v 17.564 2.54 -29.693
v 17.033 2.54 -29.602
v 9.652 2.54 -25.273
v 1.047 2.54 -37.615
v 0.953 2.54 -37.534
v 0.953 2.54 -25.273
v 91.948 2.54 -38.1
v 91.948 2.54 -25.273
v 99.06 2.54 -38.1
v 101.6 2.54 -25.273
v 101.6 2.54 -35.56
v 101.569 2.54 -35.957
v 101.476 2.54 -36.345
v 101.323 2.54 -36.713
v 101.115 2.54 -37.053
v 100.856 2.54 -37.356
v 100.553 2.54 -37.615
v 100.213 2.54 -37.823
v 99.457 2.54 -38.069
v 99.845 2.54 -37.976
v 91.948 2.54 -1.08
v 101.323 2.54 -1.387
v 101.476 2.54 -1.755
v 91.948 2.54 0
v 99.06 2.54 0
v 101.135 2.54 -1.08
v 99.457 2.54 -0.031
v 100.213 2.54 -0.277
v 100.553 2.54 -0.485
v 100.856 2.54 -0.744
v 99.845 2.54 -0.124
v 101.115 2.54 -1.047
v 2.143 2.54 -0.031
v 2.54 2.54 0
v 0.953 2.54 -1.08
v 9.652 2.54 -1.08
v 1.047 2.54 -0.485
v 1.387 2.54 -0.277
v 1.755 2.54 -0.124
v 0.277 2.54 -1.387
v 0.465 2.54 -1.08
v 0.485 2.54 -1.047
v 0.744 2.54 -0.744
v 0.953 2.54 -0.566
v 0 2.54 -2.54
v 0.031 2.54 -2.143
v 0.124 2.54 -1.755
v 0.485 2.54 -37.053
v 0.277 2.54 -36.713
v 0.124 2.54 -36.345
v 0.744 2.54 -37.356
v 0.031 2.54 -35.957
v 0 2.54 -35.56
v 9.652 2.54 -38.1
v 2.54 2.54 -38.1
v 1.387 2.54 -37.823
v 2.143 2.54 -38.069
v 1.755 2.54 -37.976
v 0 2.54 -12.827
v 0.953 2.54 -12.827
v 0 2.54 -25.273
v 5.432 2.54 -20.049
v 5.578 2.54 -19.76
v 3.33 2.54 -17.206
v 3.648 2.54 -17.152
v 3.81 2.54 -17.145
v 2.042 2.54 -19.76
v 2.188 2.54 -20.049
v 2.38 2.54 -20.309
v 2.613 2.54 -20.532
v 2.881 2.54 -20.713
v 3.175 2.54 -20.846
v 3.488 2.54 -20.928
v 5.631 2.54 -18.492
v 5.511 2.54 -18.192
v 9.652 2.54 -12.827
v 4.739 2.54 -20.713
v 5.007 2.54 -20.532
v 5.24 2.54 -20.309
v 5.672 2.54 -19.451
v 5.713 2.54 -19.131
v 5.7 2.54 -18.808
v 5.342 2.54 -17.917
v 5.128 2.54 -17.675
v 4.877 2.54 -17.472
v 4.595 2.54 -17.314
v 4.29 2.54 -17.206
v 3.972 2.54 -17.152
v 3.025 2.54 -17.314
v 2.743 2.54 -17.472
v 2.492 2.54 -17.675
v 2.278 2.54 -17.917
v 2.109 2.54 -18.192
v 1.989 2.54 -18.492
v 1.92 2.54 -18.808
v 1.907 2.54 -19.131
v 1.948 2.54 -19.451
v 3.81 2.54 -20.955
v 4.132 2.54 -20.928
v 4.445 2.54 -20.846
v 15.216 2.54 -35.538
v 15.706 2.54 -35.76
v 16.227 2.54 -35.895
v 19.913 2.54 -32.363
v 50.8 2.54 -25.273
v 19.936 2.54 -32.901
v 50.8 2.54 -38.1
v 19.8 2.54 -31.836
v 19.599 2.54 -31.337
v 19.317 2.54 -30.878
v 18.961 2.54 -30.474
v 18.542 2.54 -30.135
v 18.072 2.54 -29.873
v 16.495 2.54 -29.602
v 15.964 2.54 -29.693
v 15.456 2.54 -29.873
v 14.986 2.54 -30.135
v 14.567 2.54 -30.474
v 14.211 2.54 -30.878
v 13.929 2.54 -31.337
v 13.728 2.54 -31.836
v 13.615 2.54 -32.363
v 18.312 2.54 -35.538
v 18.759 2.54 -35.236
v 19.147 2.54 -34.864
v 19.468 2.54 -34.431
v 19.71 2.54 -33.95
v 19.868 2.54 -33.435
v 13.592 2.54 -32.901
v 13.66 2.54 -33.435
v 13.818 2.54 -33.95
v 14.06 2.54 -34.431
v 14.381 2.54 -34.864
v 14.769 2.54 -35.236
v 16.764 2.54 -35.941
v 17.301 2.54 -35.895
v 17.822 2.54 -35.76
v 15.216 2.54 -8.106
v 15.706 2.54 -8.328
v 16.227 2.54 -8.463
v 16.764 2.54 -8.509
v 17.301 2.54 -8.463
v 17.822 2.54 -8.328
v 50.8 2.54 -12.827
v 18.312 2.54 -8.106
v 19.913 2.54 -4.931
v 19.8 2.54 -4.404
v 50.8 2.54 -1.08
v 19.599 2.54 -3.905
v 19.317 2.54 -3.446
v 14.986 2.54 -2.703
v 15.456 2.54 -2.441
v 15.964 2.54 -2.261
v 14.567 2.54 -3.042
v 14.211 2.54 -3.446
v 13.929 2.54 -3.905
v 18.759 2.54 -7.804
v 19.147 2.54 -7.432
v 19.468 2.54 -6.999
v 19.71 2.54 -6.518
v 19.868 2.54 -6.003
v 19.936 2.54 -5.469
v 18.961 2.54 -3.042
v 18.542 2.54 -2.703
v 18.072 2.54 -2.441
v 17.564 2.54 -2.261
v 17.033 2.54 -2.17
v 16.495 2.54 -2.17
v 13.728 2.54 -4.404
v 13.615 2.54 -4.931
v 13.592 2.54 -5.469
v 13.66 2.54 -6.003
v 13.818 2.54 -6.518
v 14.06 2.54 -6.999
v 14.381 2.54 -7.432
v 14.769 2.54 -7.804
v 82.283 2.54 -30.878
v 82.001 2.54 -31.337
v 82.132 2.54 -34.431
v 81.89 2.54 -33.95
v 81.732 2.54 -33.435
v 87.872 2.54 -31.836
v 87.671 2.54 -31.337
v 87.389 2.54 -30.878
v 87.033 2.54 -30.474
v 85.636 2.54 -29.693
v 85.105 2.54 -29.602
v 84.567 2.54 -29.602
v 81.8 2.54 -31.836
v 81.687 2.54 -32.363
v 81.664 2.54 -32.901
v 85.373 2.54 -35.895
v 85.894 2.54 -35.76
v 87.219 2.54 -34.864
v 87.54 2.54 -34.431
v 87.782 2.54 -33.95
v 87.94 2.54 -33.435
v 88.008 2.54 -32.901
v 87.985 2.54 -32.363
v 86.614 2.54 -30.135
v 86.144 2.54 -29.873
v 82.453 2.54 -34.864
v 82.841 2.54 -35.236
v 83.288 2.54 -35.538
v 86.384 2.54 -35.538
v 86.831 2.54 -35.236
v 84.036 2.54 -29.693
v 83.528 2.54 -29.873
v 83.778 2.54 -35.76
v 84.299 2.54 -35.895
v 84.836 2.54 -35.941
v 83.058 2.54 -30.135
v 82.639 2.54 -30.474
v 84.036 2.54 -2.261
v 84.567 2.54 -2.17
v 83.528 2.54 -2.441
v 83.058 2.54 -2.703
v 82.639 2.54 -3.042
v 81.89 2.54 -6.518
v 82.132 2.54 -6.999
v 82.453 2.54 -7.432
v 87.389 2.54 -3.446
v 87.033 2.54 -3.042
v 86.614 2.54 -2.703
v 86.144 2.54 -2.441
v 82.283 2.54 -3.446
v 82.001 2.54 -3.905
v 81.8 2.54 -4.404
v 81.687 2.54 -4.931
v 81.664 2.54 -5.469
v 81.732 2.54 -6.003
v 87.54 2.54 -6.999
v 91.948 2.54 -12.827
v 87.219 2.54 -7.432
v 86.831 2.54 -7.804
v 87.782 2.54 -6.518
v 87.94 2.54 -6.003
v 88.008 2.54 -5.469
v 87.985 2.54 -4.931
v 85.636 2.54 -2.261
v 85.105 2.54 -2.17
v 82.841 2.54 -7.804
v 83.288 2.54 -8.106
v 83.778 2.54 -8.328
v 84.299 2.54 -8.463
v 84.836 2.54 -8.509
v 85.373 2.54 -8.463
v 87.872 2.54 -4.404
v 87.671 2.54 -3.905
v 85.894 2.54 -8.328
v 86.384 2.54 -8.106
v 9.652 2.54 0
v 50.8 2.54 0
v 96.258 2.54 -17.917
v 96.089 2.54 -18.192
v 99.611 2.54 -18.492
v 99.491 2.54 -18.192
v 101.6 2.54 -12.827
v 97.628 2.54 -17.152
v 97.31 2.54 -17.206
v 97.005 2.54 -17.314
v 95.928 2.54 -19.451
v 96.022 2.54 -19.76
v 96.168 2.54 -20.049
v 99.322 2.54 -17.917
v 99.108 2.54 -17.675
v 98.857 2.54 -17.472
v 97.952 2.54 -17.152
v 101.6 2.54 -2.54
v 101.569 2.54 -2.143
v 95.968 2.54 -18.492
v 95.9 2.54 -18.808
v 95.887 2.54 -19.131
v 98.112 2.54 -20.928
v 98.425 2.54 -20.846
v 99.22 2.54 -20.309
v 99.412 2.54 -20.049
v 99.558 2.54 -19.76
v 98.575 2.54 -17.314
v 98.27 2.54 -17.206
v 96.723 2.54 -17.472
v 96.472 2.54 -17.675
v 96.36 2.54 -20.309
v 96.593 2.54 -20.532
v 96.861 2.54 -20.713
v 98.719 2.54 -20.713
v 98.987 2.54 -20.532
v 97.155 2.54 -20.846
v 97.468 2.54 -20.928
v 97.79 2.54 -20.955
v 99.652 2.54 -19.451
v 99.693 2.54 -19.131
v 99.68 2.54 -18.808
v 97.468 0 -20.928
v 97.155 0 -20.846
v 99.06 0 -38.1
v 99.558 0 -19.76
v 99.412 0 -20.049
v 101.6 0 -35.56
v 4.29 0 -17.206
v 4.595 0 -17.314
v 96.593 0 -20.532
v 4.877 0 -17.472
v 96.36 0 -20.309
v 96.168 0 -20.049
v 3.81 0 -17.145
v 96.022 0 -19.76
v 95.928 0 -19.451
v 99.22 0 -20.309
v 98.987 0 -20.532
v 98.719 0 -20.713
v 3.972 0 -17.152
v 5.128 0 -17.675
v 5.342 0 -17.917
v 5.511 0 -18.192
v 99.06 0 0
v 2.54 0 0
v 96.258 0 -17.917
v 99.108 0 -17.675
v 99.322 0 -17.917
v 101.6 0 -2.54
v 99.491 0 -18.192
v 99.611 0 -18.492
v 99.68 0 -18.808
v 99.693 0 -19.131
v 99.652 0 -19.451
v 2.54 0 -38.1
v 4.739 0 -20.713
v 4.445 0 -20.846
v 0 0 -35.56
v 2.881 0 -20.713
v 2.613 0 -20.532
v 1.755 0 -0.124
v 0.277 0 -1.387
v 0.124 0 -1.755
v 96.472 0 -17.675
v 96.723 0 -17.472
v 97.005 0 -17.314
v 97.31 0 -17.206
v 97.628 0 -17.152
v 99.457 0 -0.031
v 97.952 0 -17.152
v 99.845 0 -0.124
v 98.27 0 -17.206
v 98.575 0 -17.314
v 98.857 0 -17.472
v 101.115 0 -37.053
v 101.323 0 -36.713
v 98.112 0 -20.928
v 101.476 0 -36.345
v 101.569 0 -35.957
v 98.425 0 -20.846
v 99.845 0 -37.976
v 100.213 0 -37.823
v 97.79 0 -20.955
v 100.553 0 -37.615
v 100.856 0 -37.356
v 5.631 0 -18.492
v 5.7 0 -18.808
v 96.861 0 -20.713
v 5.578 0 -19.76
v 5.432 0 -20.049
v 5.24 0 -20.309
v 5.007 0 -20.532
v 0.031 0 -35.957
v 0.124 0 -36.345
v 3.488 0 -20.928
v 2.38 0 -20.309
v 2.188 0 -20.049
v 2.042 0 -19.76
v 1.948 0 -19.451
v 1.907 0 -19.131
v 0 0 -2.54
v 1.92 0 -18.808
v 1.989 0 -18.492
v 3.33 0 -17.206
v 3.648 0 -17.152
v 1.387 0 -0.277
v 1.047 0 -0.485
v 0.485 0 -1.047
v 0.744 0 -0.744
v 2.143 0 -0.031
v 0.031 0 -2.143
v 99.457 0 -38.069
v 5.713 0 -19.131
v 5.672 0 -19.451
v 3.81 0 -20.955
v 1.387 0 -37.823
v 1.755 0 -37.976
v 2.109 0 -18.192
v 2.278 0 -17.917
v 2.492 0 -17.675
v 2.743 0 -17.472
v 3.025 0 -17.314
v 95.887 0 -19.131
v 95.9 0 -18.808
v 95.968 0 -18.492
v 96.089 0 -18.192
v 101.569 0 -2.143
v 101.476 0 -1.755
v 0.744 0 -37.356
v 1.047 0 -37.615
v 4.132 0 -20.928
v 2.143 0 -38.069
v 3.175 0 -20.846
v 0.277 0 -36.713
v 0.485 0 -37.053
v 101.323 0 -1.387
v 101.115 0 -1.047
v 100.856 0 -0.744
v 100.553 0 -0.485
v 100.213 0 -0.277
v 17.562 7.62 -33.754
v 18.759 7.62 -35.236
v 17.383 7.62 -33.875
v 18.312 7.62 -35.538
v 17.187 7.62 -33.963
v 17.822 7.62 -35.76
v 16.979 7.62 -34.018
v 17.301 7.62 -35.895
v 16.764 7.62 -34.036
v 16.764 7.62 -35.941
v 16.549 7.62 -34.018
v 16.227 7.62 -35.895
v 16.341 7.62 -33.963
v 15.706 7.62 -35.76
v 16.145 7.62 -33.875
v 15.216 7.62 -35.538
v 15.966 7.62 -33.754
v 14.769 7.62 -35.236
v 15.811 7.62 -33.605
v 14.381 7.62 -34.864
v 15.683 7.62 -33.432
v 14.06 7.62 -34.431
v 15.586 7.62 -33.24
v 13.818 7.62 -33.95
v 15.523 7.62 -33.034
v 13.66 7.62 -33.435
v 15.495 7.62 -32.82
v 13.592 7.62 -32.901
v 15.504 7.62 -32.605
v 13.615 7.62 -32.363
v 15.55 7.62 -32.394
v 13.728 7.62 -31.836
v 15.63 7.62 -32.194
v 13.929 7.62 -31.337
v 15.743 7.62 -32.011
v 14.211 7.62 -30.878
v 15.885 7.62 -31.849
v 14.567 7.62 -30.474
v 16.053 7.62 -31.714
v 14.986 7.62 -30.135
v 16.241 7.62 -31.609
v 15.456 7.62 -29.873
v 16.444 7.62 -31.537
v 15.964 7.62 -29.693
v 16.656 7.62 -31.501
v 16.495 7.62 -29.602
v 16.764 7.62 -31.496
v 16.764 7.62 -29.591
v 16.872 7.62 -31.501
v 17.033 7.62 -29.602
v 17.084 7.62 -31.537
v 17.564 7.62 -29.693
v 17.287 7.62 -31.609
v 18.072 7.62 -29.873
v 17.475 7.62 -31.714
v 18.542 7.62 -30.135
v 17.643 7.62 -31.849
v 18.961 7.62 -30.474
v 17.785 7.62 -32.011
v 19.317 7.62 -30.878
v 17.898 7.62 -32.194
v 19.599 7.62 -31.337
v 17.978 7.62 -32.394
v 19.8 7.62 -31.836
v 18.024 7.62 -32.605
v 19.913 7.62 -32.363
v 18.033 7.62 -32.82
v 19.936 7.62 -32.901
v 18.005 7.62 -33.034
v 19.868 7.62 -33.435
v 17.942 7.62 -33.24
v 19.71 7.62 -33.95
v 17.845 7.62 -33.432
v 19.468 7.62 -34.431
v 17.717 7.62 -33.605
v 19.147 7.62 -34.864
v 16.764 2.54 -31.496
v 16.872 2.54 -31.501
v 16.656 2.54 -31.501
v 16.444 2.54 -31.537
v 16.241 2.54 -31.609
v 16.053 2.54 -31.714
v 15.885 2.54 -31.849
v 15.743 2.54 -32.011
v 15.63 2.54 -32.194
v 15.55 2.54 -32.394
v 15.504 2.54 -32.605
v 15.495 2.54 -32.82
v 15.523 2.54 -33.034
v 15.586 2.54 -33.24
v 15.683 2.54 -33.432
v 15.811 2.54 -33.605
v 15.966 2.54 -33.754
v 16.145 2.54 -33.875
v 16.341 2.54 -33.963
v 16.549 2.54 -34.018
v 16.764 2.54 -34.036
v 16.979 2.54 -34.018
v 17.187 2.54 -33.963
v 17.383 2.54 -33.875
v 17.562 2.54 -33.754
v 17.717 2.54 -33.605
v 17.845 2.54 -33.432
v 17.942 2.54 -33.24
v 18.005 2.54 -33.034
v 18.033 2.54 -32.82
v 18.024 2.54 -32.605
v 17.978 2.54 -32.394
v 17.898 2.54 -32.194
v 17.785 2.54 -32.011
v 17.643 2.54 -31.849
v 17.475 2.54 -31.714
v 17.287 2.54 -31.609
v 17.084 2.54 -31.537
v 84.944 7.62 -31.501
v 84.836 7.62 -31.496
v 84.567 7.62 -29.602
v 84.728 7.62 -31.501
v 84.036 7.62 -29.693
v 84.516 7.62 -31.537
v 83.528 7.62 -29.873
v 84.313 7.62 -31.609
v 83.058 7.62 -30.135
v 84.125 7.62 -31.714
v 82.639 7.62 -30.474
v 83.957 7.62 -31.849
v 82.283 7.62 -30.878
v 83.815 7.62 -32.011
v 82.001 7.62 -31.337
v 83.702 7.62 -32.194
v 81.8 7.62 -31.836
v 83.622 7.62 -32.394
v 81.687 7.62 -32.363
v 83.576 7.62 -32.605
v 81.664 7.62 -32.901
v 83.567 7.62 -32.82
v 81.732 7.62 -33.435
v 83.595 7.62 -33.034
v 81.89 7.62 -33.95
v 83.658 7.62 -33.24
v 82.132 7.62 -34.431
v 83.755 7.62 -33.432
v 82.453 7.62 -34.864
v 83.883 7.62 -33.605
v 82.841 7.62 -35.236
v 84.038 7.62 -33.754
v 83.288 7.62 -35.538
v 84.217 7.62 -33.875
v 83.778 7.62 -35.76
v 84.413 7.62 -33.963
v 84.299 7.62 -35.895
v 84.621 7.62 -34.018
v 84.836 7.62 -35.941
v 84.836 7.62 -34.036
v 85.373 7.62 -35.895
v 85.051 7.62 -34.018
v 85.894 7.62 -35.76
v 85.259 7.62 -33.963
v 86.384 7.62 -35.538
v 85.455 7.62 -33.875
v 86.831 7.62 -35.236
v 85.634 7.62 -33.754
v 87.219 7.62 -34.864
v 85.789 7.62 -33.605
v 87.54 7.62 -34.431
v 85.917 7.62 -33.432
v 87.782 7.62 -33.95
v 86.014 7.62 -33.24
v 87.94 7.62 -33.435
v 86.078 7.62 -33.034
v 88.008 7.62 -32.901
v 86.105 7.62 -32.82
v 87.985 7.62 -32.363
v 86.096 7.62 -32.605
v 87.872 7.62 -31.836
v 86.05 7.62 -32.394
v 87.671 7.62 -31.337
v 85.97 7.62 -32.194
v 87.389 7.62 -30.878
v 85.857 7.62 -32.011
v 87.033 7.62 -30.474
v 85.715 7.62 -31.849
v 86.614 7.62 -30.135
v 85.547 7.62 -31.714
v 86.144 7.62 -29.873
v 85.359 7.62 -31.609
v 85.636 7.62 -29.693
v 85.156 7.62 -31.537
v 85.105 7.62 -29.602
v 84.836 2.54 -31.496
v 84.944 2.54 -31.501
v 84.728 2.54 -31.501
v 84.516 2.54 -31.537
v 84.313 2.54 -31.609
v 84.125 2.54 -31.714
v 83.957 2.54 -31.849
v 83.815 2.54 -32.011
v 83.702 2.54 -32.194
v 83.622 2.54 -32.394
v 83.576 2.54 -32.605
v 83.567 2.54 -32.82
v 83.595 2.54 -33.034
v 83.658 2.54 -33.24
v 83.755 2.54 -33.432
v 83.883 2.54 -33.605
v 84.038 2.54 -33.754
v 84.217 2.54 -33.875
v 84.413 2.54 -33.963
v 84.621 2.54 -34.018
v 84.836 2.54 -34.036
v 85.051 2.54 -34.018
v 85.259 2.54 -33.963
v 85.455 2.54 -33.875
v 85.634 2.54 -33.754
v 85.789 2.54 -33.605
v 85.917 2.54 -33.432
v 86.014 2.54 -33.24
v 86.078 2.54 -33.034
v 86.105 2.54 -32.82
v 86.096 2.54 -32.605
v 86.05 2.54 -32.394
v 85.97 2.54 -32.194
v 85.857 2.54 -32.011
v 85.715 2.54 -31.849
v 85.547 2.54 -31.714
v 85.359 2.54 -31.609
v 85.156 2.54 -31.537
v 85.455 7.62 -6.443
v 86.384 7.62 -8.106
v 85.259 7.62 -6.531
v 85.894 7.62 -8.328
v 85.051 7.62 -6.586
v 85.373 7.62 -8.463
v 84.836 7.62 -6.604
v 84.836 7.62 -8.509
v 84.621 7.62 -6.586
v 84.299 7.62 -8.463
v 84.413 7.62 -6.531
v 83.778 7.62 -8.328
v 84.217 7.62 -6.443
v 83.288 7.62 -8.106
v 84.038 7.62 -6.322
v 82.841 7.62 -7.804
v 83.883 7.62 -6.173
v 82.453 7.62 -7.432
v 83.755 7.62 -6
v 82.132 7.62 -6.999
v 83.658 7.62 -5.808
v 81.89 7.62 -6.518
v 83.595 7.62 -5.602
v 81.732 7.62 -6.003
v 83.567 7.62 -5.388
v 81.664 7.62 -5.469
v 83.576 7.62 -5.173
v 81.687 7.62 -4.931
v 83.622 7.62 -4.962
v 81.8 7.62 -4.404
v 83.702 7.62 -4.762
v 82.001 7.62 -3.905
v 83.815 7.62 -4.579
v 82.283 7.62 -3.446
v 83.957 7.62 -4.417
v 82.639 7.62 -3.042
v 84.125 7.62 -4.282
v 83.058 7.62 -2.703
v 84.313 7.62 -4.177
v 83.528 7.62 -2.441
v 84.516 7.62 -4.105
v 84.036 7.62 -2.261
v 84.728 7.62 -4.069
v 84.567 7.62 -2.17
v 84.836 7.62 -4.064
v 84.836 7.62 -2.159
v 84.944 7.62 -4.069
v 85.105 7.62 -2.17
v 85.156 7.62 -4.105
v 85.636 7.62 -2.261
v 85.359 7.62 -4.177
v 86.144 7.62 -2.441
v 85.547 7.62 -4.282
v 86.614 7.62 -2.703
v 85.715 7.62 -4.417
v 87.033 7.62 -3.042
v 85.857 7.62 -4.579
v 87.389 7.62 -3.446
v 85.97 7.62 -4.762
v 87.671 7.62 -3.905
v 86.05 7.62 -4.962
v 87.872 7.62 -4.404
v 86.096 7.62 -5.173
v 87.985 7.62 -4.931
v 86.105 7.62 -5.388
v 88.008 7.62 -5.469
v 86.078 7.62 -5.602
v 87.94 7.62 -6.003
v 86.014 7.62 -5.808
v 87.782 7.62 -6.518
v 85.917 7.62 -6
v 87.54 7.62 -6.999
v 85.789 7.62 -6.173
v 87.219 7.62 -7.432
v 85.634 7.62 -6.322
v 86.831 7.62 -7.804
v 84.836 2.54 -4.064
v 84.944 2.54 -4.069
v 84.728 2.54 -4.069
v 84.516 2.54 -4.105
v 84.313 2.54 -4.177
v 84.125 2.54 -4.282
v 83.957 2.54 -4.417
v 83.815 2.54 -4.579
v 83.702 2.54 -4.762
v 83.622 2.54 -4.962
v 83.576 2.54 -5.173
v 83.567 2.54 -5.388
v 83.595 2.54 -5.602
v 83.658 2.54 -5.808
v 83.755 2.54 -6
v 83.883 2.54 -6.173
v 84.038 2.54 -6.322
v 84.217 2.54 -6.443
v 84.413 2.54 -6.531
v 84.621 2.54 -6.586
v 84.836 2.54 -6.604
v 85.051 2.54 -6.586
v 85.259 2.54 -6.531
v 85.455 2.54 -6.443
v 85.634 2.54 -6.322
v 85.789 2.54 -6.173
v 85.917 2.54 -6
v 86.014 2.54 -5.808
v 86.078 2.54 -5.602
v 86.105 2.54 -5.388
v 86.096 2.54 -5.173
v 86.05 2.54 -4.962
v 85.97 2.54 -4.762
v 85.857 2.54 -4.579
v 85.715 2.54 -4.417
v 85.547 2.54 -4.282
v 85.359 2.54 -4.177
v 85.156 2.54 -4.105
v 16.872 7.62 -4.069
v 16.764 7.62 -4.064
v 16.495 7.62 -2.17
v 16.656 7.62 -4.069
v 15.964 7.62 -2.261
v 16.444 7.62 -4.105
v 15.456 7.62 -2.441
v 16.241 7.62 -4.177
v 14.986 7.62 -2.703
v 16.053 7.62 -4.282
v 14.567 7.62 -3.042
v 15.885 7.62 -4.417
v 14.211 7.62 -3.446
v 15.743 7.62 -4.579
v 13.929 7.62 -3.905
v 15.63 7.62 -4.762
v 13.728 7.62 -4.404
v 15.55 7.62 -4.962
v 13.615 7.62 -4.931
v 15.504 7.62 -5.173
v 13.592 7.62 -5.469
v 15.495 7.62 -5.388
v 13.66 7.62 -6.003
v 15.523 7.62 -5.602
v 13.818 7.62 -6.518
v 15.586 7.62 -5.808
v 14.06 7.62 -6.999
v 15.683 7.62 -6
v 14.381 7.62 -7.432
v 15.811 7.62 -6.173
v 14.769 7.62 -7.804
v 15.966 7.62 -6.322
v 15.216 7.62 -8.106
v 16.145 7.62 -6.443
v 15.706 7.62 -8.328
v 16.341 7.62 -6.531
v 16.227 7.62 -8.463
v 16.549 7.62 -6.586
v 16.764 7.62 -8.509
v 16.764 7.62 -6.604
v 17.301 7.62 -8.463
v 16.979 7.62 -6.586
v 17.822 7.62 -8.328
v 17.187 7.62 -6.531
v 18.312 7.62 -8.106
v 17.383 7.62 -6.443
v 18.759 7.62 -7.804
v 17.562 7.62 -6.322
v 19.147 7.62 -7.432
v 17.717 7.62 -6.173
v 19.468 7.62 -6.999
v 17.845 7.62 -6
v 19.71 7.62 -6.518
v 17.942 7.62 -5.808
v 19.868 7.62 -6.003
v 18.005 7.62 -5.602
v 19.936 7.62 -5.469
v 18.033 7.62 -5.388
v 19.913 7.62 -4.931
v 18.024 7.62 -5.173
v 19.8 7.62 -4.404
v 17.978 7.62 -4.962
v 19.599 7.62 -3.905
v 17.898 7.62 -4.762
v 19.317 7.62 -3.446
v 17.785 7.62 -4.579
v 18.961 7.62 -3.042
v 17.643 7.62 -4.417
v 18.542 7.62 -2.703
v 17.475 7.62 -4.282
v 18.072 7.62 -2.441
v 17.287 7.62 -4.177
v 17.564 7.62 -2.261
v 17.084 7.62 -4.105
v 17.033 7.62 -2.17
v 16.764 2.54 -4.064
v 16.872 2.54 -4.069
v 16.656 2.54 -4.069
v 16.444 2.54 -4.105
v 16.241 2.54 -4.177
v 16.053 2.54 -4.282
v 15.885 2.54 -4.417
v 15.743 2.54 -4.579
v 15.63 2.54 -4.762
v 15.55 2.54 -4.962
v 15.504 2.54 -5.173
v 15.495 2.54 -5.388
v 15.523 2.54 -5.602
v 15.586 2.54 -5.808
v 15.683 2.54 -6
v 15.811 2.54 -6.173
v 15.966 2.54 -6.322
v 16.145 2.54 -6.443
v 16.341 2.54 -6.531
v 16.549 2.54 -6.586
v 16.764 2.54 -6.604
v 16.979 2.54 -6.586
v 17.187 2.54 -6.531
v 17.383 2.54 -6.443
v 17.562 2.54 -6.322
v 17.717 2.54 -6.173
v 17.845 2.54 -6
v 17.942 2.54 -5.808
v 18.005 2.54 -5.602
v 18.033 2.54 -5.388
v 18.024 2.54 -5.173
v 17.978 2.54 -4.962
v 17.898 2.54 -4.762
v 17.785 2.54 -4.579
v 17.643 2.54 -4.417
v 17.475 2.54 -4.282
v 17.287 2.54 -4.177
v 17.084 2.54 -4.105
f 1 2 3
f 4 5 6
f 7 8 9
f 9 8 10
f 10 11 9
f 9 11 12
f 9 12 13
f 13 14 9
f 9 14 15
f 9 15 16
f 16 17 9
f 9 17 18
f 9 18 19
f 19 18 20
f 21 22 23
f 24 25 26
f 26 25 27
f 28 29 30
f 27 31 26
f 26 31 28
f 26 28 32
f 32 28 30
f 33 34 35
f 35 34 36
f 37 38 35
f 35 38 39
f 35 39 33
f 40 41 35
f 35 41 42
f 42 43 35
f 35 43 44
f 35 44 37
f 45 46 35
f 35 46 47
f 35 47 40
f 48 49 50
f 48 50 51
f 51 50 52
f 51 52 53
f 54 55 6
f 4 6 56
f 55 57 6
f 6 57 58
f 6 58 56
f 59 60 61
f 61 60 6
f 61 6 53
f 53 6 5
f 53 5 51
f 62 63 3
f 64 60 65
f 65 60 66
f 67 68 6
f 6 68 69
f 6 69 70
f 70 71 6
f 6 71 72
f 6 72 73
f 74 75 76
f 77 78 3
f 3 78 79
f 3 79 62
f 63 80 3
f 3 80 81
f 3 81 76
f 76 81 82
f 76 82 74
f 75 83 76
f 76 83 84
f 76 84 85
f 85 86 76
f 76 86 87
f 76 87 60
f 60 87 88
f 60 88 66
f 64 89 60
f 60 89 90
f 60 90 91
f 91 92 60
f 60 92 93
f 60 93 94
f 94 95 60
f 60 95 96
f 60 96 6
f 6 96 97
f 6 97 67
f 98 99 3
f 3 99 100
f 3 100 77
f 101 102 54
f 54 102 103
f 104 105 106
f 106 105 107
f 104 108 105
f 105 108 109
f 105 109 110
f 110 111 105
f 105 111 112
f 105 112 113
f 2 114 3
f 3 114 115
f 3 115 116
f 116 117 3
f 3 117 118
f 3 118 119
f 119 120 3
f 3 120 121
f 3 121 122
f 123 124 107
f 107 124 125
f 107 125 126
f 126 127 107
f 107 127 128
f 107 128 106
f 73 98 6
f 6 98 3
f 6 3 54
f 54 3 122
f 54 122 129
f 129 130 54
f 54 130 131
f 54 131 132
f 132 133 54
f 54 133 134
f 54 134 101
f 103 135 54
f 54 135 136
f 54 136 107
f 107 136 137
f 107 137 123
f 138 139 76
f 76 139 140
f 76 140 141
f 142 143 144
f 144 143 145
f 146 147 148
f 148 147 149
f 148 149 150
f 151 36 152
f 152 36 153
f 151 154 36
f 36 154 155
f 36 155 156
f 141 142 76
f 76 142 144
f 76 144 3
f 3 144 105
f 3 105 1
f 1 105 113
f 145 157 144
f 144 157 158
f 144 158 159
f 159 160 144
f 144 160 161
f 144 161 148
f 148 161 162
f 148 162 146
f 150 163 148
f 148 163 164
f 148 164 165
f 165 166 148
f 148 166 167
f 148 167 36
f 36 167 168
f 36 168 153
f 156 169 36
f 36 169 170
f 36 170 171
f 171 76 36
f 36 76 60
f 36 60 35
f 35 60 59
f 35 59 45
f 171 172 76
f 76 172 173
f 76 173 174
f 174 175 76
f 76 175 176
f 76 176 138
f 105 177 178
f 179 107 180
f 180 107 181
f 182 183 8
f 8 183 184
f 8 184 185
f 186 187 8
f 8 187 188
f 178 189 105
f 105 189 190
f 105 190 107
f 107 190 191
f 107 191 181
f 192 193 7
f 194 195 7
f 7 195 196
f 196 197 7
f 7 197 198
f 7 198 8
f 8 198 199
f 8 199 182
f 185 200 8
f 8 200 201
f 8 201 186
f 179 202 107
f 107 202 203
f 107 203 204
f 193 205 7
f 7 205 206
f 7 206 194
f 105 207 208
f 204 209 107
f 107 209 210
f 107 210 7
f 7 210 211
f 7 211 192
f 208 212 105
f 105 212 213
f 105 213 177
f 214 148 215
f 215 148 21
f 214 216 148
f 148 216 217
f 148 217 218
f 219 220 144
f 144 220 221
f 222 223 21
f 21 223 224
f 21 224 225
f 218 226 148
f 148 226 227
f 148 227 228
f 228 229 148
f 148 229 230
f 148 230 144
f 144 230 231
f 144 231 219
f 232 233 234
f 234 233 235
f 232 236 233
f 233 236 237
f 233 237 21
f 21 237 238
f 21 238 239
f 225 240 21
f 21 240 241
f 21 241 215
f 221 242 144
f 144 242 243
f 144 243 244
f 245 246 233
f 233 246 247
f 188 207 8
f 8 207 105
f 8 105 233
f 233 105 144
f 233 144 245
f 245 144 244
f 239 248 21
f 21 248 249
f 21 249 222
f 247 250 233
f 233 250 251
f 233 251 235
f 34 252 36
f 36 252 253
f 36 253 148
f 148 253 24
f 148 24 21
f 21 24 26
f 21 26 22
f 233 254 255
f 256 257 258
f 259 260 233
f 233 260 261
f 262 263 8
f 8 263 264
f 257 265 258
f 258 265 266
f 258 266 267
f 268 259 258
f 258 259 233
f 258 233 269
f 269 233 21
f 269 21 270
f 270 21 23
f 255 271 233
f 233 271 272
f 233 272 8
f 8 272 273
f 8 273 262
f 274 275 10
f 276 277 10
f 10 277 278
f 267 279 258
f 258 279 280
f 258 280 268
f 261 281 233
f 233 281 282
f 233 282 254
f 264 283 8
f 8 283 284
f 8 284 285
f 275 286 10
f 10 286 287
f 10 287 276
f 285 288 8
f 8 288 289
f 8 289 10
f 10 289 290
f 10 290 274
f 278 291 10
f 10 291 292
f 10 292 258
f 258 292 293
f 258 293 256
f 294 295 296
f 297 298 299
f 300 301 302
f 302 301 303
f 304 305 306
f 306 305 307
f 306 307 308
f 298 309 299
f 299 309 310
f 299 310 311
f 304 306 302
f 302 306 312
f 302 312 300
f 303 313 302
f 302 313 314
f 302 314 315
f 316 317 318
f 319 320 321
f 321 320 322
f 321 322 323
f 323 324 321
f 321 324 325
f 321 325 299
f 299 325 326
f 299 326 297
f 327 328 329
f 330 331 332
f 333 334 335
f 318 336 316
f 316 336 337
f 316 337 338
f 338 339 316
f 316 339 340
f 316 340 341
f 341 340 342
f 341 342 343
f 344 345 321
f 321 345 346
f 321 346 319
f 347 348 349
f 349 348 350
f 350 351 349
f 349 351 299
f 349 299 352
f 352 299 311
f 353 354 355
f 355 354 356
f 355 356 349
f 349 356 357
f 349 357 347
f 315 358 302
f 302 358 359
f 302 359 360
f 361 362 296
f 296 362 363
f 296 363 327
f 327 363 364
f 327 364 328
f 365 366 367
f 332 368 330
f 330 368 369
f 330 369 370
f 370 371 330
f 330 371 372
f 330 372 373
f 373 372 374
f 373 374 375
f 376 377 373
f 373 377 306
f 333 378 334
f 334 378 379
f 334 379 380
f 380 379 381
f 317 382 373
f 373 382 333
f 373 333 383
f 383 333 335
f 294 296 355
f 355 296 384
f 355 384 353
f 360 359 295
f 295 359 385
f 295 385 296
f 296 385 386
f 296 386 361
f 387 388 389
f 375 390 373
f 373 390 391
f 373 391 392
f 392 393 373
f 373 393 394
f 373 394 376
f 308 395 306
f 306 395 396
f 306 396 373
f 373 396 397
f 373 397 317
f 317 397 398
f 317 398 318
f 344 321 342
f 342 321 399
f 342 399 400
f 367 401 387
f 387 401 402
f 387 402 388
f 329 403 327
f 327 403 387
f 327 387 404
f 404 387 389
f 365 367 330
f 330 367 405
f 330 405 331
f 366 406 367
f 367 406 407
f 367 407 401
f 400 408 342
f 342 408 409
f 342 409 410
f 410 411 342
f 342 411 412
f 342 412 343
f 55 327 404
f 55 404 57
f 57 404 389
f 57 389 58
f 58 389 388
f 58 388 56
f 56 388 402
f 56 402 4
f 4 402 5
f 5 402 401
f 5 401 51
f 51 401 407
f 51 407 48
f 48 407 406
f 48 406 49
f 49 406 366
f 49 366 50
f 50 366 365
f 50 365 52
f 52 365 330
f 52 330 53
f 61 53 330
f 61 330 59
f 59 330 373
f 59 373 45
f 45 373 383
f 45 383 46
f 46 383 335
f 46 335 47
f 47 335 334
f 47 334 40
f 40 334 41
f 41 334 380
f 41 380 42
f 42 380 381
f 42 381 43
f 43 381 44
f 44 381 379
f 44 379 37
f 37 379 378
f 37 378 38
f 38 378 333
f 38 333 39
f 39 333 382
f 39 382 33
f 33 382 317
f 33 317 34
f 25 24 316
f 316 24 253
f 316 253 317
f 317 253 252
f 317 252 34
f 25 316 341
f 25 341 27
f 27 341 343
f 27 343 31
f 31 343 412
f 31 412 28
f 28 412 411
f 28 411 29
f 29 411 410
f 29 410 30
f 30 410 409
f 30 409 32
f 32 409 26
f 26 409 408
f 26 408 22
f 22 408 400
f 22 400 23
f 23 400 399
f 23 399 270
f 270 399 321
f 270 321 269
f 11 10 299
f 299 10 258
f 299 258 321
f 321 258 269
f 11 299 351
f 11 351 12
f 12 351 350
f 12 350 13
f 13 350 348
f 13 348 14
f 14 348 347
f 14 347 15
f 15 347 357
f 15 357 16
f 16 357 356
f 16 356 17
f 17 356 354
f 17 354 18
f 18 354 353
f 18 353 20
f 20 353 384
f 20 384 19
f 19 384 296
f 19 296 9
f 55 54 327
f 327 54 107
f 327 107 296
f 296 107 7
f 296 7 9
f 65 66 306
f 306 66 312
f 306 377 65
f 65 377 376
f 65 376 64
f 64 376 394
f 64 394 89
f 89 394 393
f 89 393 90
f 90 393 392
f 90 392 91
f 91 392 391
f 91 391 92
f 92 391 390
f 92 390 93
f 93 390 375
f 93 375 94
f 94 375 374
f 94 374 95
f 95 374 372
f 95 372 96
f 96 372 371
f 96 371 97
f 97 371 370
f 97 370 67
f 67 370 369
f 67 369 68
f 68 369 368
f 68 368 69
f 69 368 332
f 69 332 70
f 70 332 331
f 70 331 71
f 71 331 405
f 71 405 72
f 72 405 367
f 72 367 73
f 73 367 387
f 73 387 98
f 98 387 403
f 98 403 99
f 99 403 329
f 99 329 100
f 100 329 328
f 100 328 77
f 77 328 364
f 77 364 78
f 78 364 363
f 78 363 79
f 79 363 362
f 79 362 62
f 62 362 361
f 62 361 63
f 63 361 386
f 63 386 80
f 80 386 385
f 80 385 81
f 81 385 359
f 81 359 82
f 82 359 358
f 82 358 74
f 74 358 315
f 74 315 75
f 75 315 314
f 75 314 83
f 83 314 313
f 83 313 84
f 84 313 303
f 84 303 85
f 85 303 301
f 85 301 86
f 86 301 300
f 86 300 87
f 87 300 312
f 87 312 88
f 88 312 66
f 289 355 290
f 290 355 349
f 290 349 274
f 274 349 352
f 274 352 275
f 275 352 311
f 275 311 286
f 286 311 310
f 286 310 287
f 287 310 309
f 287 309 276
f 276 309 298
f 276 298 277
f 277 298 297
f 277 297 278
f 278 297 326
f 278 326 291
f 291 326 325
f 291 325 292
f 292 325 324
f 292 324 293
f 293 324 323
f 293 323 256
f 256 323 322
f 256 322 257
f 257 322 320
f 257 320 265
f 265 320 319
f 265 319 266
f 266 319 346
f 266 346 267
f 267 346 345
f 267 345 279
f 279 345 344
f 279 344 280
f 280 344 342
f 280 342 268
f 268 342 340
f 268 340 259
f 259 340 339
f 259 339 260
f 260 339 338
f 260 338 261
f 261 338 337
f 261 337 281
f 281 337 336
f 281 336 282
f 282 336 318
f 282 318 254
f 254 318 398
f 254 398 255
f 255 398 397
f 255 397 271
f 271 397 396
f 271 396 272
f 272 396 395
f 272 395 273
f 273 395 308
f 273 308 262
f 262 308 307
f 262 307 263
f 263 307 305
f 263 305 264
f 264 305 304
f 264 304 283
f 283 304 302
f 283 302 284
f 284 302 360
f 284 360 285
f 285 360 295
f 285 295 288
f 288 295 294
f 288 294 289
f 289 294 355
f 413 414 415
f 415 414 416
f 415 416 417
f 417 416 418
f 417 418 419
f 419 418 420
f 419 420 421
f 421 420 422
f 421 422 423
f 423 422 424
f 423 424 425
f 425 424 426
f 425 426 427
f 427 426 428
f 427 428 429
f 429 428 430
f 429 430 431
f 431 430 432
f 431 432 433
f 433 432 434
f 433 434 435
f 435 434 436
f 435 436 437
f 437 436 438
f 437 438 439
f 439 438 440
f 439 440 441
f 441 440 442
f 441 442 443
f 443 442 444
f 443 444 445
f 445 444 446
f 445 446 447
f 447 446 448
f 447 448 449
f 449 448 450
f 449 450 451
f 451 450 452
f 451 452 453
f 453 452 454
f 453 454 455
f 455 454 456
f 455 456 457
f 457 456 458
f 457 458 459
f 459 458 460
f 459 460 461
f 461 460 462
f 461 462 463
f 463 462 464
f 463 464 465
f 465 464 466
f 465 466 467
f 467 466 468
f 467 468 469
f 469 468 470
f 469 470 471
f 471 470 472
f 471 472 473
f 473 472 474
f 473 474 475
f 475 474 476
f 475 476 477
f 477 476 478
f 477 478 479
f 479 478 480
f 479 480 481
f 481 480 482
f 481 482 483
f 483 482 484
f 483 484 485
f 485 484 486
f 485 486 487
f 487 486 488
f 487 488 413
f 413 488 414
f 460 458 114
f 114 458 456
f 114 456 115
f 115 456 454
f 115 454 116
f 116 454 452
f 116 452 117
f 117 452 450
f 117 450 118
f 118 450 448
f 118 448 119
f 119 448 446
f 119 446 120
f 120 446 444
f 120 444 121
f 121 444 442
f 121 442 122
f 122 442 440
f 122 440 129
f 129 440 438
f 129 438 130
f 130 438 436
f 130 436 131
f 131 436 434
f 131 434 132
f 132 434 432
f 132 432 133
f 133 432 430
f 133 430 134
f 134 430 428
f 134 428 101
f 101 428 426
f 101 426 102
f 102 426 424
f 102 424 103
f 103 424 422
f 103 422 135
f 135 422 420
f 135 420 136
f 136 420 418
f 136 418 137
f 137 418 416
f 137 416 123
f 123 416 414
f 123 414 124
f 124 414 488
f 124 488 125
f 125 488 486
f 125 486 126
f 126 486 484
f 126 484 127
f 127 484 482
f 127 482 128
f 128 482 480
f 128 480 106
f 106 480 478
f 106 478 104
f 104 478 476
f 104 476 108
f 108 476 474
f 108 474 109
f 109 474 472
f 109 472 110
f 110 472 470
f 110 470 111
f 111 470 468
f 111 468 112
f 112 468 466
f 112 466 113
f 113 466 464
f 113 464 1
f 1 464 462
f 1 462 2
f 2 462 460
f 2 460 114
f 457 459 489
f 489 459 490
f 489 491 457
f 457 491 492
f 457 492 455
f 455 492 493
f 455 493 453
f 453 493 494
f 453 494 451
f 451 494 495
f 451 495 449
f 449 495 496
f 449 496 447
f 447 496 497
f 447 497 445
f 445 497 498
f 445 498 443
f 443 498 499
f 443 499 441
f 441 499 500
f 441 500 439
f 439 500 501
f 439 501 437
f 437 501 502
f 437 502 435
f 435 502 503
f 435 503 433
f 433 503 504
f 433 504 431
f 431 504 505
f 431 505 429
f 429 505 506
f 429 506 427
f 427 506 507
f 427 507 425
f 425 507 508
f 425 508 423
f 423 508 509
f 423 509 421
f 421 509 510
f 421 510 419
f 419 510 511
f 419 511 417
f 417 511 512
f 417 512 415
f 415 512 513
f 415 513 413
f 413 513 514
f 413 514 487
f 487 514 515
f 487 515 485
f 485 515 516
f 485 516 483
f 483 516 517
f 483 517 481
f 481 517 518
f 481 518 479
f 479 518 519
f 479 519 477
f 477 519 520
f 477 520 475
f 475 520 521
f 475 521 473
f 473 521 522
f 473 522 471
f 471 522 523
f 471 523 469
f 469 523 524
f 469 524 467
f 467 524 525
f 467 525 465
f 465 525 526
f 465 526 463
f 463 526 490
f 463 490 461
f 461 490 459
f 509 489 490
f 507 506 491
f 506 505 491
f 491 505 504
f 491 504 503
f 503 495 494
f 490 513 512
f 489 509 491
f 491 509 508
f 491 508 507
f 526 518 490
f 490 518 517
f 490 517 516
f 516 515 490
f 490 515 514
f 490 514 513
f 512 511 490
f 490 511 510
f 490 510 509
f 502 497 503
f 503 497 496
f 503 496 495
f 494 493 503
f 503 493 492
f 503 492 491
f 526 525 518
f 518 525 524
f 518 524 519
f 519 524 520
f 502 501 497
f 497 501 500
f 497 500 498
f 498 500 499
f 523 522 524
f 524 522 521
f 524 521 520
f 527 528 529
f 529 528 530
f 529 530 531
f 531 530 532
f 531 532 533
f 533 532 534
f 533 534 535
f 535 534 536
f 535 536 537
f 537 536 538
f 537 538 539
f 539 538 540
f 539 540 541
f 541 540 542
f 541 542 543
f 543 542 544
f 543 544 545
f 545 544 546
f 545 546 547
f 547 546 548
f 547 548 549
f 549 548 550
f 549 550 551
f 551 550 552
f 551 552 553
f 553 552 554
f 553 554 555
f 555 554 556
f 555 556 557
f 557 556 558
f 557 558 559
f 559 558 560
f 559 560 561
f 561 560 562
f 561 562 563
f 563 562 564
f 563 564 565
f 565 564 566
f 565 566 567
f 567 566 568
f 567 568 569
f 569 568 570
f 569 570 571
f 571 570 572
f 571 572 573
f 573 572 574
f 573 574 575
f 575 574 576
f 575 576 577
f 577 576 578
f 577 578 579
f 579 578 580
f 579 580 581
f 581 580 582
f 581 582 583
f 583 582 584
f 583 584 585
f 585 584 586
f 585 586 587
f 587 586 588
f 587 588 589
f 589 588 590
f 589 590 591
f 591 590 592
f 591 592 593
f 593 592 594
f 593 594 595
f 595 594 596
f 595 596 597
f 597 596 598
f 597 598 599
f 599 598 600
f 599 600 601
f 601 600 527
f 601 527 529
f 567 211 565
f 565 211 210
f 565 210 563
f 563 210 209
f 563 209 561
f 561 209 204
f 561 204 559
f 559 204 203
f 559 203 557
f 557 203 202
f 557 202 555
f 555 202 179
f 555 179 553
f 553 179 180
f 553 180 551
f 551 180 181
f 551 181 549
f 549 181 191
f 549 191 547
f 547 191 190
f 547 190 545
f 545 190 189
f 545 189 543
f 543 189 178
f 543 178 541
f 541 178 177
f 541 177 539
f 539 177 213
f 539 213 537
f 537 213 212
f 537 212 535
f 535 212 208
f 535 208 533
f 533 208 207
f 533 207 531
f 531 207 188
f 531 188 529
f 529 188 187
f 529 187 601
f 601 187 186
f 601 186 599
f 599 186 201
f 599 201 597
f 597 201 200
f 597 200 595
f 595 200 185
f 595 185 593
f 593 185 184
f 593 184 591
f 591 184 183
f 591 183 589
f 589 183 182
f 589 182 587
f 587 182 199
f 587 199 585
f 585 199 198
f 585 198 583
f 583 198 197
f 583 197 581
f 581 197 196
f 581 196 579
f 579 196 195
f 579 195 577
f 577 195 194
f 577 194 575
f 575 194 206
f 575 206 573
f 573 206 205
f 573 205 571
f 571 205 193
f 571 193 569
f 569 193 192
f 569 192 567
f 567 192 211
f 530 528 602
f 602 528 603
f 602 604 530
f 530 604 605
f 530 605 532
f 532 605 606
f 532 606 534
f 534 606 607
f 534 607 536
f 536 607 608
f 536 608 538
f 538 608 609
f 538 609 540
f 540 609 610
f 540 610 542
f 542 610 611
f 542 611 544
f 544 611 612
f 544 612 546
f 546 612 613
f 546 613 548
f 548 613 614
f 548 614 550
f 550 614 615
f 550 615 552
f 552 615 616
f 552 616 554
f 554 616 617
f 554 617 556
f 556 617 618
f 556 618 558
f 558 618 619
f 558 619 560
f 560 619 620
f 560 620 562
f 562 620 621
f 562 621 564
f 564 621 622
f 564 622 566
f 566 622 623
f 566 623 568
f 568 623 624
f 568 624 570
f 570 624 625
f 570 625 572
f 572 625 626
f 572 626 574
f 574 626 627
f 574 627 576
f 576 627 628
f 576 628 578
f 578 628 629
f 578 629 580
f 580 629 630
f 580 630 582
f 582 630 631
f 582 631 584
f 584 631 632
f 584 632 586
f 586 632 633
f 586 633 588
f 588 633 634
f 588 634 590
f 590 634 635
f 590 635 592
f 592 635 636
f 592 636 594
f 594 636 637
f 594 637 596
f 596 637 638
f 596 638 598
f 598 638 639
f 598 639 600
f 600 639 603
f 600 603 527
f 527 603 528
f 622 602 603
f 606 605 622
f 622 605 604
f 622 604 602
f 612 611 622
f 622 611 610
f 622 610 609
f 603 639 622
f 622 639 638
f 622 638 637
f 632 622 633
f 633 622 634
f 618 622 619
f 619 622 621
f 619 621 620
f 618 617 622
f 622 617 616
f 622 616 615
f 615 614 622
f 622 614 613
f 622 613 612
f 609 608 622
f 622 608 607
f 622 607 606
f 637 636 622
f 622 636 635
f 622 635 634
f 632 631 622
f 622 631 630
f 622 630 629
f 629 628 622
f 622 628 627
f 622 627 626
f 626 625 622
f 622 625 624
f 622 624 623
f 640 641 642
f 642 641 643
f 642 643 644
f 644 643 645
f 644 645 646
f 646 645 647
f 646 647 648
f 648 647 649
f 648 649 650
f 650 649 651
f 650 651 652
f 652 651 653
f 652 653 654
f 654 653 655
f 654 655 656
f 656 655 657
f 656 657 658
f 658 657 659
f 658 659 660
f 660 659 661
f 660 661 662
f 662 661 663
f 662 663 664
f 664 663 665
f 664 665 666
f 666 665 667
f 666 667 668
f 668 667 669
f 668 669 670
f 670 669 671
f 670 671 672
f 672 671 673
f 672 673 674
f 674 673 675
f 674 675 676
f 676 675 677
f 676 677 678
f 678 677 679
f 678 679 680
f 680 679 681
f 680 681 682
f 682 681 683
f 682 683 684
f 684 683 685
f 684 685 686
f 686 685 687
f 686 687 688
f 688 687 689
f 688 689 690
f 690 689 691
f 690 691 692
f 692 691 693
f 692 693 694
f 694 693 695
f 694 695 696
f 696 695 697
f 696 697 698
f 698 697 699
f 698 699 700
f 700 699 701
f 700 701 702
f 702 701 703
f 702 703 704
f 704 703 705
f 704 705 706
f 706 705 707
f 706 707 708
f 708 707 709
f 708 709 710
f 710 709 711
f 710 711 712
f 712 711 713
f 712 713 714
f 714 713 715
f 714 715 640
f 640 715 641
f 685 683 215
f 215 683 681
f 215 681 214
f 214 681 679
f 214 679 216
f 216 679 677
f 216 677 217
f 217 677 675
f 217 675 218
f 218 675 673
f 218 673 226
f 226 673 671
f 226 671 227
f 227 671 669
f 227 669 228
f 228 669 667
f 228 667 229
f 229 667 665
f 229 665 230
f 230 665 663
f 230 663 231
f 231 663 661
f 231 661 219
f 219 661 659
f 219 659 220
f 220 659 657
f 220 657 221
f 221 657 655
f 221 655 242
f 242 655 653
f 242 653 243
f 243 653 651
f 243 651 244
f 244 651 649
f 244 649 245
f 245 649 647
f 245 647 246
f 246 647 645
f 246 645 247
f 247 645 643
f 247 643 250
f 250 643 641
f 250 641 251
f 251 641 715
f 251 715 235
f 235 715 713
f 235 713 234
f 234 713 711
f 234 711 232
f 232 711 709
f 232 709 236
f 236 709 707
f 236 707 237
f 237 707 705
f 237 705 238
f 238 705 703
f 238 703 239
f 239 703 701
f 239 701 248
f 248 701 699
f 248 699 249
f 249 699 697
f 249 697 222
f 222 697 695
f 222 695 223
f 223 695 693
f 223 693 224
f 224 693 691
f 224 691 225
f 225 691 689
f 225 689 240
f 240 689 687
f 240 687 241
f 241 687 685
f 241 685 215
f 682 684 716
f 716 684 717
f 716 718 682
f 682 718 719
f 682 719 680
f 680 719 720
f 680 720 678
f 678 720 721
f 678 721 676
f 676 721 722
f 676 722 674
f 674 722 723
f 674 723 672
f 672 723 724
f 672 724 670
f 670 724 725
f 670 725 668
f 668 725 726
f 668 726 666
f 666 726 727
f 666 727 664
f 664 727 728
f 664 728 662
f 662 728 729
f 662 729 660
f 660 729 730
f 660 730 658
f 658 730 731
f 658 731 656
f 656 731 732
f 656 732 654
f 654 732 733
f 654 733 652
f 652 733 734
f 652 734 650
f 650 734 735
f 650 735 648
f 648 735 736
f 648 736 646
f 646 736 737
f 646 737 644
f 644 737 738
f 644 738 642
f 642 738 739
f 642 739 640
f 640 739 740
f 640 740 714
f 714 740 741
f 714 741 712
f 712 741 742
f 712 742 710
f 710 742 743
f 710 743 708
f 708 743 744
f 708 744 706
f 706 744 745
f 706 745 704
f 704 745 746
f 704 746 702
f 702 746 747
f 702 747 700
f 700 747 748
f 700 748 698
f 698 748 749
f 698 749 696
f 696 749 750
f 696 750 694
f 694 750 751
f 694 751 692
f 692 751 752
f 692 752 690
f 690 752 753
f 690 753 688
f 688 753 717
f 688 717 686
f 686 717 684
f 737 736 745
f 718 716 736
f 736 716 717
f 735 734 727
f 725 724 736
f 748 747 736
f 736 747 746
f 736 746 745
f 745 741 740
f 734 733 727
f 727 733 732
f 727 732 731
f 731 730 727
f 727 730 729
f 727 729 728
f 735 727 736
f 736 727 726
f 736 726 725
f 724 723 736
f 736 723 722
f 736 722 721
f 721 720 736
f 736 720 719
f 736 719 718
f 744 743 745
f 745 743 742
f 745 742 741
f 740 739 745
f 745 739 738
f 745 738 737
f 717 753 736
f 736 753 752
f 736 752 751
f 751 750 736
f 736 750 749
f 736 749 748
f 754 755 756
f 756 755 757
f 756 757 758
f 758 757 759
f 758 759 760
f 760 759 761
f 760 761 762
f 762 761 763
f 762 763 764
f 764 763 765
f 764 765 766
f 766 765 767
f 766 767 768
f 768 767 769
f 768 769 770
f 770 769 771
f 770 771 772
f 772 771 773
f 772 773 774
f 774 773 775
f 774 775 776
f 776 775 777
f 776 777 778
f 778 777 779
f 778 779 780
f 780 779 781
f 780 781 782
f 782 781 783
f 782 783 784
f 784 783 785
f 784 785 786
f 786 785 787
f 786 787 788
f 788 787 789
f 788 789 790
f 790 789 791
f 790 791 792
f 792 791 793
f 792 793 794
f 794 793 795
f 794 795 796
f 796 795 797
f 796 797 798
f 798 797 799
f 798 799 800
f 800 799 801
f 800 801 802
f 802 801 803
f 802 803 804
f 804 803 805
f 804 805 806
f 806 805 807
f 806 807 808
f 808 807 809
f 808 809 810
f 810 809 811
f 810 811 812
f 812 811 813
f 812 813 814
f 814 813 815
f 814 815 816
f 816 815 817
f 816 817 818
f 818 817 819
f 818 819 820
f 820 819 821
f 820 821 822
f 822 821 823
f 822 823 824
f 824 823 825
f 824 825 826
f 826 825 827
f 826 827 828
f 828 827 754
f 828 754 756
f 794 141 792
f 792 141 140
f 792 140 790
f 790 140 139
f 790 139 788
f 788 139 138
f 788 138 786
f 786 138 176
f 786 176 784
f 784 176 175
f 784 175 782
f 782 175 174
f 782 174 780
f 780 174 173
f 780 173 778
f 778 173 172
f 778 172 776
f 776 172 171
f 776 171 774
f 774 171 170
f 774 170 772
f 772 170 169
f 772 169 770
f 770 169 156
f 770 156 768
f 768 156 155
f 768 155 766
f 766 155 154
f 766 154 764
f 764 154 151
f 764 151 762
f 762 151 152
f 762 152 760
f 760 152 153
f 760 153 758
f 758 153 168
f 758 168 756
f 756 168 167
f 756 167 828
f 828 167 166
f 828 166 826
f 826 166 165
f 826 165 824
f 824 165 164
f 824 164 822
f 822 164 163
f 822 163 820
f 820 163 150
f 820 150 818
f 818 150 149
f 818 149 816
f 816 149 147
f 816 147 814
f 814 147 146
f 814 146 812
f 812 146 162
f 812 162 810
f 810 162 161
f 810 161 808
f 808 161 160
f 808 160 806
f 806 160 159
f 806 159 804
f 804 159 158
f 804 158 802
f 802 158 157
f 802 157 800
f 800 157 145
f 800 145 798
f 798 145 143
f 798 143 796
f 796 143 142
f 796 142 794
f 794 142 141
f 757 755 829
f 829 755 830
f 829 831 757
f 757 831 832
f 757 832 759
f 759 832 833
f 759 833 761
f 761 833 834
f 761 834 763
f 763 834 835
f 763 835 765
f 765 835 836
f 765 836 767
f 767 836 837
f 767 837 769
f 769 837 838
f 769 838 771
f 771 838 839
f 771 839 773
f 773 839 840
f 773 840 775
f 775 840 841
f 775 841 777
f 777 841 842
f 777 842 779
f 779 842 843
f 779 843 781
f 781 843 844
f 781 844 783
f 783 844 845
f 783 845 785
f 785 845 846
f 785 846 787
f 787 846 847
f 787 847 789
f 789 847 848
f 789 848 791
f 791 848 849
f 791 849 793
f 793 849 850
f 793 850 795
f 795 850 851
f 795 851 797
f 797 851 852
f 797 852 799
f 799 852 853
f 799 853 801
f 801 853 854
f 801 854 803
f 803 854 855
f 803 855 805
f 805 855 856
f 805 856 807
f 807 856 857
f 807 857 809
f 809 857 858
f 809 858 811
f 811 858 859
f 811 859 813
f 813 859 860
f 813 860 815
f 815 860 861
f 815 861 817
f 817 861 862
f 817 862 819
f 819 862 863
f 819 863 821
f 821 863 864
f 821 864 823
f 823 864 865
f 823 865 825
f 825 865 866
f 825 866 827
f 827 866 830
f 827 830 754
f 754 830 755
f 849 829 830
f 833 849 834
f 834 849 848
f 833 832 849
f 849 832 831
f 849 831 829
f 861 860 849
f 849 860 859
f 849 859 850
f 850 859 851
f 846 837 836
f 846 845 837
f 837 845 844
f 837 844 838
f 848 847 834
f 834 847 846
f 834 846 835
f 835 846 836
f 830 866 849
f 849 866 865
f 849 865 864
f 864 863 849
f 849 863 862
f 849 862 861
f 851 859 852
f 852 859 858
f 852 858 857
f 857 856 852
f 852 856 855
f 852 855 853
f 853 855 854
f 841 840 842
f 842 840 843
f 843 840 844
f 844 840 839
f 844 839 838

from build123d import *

# Parameters (mm, degrees)
BASE_R                 = 1.905
BOSS_EXTRUDEBASE_DEPTH = 2.54
STANDOFFS_R            = 3.175
STANDOFFS_R_2          = 1.27
BOSS_EXTRUDE2_DEPTH    = 5.08


with BuildPart() as part:
    # Base → Boss-ExtrudeBase (new body)
    with BuildSketch(Plane(origin=(0, 0, 0), x_dir=(1, 0, 0), z_dir=(0, 1, 0))):
        with BuildLine():
            Line((2.54, 0), (99.06, 0))
            ThreePointArc((99.06, 0), (100.856051224, 0.743948776), (101.6, 2.54))
            Line((101.6, 2.54), (101.6, 35.56))
            ThreePointArc((101.6, 35.56), (100.856051224, 37.356051224), (99.06, 38.1))
            Line((99.06, 38.1), (2.54, 38.1))
            ThreePointArc((2.54, 38.1), (0.743948776, 37.356051224), (0, 35.56))
            Line((0, 35.56), (0, 2.54))
            ThreePointArc((0, 2.54), (0.743948776, 0.743948776), (2.54, 0))
        make_face()
        with Locations(Location((3.81, 19.05, 0), (0, 0, 270))):
            Circle(BASE_R, mode=Mode.SUBTRACT)
        with Locations(Location((97.79, 19.05, 0), (0, 0, 90))):
            Circle(BASE_R, mode=Mode.SUBTRACT)
    extrude(amount=BOSS_EXTRUDEBASE_DEPTH)

    # Standoffs → Boss-Extrude2 (add)
    # profile 1 of 4: a face of its own
    with BuildSketch(Plane(origin=(0, 2.54, 0), x_dir=(1, 0, 0), z_dir=(0, 1, 0))):
        with Locations(Location((16.764, 32.766, 0), (0, 0, 90))):
            Circle(STANDOFFS_R)
        with Locations(Location((16.764, 32.766, 0), (0, 0, 270))):
            Circle(STANDOFFS_R_2, mode=Mode.SUBTRACT)
    # profile 2 of 4: a face of its own
    with BuildSketch(Plane(origin=(0, 2.54, 0), x_dir=(1, 0, 0), z_dir=(0, 1, 0))):
        with Locations(Location((84.836, 32.766, 0), (0, 0, 90))):
            Circle(STANDOFFS_R)
        with Locations(Location((84.836, 32.766, 0), (0, 0, 270))):
            Circle(STANDOFFS_R_2, mode=Mode.SUBTRACT)
    # profile 3 of 4: a face of its own
    with BuildSketch(Plane(origin=(0, 2.54, 0), x_dir=(1, 0, 0), z_dir=(0, 1, 0))):
        with Locations(Location((84.836, 5.334, 0), (0, 0, 90))):
            Circle(STANDOFFS_R)
        with Locations(Location((84.836, 5.334, 0), (0, 0, 270))):
            Circle(STANDOFFS_R_2, mode=Mode.SUBTRACT)
    # profile 4 of 4: a face of its own
    with BuildSketch(Plane(origin=(0, 2.54, 0), x_dir=(1, 0, 0), z_dir=(0, 1, 0))):
        with Locations(Location((16.764, 5.334, 0), (0, 0, 90))):
            Circle(STANDOFFS_R)
        with Locations(Location((16.764, 5.334, 0), (0, 0, 270))):
            Circle(STANDOFFS_R_2, mode=Mode.SUBTRACT)
    extrude(amount=BOSS_EXTRUDE2_DEPTH)


solid = part.part
